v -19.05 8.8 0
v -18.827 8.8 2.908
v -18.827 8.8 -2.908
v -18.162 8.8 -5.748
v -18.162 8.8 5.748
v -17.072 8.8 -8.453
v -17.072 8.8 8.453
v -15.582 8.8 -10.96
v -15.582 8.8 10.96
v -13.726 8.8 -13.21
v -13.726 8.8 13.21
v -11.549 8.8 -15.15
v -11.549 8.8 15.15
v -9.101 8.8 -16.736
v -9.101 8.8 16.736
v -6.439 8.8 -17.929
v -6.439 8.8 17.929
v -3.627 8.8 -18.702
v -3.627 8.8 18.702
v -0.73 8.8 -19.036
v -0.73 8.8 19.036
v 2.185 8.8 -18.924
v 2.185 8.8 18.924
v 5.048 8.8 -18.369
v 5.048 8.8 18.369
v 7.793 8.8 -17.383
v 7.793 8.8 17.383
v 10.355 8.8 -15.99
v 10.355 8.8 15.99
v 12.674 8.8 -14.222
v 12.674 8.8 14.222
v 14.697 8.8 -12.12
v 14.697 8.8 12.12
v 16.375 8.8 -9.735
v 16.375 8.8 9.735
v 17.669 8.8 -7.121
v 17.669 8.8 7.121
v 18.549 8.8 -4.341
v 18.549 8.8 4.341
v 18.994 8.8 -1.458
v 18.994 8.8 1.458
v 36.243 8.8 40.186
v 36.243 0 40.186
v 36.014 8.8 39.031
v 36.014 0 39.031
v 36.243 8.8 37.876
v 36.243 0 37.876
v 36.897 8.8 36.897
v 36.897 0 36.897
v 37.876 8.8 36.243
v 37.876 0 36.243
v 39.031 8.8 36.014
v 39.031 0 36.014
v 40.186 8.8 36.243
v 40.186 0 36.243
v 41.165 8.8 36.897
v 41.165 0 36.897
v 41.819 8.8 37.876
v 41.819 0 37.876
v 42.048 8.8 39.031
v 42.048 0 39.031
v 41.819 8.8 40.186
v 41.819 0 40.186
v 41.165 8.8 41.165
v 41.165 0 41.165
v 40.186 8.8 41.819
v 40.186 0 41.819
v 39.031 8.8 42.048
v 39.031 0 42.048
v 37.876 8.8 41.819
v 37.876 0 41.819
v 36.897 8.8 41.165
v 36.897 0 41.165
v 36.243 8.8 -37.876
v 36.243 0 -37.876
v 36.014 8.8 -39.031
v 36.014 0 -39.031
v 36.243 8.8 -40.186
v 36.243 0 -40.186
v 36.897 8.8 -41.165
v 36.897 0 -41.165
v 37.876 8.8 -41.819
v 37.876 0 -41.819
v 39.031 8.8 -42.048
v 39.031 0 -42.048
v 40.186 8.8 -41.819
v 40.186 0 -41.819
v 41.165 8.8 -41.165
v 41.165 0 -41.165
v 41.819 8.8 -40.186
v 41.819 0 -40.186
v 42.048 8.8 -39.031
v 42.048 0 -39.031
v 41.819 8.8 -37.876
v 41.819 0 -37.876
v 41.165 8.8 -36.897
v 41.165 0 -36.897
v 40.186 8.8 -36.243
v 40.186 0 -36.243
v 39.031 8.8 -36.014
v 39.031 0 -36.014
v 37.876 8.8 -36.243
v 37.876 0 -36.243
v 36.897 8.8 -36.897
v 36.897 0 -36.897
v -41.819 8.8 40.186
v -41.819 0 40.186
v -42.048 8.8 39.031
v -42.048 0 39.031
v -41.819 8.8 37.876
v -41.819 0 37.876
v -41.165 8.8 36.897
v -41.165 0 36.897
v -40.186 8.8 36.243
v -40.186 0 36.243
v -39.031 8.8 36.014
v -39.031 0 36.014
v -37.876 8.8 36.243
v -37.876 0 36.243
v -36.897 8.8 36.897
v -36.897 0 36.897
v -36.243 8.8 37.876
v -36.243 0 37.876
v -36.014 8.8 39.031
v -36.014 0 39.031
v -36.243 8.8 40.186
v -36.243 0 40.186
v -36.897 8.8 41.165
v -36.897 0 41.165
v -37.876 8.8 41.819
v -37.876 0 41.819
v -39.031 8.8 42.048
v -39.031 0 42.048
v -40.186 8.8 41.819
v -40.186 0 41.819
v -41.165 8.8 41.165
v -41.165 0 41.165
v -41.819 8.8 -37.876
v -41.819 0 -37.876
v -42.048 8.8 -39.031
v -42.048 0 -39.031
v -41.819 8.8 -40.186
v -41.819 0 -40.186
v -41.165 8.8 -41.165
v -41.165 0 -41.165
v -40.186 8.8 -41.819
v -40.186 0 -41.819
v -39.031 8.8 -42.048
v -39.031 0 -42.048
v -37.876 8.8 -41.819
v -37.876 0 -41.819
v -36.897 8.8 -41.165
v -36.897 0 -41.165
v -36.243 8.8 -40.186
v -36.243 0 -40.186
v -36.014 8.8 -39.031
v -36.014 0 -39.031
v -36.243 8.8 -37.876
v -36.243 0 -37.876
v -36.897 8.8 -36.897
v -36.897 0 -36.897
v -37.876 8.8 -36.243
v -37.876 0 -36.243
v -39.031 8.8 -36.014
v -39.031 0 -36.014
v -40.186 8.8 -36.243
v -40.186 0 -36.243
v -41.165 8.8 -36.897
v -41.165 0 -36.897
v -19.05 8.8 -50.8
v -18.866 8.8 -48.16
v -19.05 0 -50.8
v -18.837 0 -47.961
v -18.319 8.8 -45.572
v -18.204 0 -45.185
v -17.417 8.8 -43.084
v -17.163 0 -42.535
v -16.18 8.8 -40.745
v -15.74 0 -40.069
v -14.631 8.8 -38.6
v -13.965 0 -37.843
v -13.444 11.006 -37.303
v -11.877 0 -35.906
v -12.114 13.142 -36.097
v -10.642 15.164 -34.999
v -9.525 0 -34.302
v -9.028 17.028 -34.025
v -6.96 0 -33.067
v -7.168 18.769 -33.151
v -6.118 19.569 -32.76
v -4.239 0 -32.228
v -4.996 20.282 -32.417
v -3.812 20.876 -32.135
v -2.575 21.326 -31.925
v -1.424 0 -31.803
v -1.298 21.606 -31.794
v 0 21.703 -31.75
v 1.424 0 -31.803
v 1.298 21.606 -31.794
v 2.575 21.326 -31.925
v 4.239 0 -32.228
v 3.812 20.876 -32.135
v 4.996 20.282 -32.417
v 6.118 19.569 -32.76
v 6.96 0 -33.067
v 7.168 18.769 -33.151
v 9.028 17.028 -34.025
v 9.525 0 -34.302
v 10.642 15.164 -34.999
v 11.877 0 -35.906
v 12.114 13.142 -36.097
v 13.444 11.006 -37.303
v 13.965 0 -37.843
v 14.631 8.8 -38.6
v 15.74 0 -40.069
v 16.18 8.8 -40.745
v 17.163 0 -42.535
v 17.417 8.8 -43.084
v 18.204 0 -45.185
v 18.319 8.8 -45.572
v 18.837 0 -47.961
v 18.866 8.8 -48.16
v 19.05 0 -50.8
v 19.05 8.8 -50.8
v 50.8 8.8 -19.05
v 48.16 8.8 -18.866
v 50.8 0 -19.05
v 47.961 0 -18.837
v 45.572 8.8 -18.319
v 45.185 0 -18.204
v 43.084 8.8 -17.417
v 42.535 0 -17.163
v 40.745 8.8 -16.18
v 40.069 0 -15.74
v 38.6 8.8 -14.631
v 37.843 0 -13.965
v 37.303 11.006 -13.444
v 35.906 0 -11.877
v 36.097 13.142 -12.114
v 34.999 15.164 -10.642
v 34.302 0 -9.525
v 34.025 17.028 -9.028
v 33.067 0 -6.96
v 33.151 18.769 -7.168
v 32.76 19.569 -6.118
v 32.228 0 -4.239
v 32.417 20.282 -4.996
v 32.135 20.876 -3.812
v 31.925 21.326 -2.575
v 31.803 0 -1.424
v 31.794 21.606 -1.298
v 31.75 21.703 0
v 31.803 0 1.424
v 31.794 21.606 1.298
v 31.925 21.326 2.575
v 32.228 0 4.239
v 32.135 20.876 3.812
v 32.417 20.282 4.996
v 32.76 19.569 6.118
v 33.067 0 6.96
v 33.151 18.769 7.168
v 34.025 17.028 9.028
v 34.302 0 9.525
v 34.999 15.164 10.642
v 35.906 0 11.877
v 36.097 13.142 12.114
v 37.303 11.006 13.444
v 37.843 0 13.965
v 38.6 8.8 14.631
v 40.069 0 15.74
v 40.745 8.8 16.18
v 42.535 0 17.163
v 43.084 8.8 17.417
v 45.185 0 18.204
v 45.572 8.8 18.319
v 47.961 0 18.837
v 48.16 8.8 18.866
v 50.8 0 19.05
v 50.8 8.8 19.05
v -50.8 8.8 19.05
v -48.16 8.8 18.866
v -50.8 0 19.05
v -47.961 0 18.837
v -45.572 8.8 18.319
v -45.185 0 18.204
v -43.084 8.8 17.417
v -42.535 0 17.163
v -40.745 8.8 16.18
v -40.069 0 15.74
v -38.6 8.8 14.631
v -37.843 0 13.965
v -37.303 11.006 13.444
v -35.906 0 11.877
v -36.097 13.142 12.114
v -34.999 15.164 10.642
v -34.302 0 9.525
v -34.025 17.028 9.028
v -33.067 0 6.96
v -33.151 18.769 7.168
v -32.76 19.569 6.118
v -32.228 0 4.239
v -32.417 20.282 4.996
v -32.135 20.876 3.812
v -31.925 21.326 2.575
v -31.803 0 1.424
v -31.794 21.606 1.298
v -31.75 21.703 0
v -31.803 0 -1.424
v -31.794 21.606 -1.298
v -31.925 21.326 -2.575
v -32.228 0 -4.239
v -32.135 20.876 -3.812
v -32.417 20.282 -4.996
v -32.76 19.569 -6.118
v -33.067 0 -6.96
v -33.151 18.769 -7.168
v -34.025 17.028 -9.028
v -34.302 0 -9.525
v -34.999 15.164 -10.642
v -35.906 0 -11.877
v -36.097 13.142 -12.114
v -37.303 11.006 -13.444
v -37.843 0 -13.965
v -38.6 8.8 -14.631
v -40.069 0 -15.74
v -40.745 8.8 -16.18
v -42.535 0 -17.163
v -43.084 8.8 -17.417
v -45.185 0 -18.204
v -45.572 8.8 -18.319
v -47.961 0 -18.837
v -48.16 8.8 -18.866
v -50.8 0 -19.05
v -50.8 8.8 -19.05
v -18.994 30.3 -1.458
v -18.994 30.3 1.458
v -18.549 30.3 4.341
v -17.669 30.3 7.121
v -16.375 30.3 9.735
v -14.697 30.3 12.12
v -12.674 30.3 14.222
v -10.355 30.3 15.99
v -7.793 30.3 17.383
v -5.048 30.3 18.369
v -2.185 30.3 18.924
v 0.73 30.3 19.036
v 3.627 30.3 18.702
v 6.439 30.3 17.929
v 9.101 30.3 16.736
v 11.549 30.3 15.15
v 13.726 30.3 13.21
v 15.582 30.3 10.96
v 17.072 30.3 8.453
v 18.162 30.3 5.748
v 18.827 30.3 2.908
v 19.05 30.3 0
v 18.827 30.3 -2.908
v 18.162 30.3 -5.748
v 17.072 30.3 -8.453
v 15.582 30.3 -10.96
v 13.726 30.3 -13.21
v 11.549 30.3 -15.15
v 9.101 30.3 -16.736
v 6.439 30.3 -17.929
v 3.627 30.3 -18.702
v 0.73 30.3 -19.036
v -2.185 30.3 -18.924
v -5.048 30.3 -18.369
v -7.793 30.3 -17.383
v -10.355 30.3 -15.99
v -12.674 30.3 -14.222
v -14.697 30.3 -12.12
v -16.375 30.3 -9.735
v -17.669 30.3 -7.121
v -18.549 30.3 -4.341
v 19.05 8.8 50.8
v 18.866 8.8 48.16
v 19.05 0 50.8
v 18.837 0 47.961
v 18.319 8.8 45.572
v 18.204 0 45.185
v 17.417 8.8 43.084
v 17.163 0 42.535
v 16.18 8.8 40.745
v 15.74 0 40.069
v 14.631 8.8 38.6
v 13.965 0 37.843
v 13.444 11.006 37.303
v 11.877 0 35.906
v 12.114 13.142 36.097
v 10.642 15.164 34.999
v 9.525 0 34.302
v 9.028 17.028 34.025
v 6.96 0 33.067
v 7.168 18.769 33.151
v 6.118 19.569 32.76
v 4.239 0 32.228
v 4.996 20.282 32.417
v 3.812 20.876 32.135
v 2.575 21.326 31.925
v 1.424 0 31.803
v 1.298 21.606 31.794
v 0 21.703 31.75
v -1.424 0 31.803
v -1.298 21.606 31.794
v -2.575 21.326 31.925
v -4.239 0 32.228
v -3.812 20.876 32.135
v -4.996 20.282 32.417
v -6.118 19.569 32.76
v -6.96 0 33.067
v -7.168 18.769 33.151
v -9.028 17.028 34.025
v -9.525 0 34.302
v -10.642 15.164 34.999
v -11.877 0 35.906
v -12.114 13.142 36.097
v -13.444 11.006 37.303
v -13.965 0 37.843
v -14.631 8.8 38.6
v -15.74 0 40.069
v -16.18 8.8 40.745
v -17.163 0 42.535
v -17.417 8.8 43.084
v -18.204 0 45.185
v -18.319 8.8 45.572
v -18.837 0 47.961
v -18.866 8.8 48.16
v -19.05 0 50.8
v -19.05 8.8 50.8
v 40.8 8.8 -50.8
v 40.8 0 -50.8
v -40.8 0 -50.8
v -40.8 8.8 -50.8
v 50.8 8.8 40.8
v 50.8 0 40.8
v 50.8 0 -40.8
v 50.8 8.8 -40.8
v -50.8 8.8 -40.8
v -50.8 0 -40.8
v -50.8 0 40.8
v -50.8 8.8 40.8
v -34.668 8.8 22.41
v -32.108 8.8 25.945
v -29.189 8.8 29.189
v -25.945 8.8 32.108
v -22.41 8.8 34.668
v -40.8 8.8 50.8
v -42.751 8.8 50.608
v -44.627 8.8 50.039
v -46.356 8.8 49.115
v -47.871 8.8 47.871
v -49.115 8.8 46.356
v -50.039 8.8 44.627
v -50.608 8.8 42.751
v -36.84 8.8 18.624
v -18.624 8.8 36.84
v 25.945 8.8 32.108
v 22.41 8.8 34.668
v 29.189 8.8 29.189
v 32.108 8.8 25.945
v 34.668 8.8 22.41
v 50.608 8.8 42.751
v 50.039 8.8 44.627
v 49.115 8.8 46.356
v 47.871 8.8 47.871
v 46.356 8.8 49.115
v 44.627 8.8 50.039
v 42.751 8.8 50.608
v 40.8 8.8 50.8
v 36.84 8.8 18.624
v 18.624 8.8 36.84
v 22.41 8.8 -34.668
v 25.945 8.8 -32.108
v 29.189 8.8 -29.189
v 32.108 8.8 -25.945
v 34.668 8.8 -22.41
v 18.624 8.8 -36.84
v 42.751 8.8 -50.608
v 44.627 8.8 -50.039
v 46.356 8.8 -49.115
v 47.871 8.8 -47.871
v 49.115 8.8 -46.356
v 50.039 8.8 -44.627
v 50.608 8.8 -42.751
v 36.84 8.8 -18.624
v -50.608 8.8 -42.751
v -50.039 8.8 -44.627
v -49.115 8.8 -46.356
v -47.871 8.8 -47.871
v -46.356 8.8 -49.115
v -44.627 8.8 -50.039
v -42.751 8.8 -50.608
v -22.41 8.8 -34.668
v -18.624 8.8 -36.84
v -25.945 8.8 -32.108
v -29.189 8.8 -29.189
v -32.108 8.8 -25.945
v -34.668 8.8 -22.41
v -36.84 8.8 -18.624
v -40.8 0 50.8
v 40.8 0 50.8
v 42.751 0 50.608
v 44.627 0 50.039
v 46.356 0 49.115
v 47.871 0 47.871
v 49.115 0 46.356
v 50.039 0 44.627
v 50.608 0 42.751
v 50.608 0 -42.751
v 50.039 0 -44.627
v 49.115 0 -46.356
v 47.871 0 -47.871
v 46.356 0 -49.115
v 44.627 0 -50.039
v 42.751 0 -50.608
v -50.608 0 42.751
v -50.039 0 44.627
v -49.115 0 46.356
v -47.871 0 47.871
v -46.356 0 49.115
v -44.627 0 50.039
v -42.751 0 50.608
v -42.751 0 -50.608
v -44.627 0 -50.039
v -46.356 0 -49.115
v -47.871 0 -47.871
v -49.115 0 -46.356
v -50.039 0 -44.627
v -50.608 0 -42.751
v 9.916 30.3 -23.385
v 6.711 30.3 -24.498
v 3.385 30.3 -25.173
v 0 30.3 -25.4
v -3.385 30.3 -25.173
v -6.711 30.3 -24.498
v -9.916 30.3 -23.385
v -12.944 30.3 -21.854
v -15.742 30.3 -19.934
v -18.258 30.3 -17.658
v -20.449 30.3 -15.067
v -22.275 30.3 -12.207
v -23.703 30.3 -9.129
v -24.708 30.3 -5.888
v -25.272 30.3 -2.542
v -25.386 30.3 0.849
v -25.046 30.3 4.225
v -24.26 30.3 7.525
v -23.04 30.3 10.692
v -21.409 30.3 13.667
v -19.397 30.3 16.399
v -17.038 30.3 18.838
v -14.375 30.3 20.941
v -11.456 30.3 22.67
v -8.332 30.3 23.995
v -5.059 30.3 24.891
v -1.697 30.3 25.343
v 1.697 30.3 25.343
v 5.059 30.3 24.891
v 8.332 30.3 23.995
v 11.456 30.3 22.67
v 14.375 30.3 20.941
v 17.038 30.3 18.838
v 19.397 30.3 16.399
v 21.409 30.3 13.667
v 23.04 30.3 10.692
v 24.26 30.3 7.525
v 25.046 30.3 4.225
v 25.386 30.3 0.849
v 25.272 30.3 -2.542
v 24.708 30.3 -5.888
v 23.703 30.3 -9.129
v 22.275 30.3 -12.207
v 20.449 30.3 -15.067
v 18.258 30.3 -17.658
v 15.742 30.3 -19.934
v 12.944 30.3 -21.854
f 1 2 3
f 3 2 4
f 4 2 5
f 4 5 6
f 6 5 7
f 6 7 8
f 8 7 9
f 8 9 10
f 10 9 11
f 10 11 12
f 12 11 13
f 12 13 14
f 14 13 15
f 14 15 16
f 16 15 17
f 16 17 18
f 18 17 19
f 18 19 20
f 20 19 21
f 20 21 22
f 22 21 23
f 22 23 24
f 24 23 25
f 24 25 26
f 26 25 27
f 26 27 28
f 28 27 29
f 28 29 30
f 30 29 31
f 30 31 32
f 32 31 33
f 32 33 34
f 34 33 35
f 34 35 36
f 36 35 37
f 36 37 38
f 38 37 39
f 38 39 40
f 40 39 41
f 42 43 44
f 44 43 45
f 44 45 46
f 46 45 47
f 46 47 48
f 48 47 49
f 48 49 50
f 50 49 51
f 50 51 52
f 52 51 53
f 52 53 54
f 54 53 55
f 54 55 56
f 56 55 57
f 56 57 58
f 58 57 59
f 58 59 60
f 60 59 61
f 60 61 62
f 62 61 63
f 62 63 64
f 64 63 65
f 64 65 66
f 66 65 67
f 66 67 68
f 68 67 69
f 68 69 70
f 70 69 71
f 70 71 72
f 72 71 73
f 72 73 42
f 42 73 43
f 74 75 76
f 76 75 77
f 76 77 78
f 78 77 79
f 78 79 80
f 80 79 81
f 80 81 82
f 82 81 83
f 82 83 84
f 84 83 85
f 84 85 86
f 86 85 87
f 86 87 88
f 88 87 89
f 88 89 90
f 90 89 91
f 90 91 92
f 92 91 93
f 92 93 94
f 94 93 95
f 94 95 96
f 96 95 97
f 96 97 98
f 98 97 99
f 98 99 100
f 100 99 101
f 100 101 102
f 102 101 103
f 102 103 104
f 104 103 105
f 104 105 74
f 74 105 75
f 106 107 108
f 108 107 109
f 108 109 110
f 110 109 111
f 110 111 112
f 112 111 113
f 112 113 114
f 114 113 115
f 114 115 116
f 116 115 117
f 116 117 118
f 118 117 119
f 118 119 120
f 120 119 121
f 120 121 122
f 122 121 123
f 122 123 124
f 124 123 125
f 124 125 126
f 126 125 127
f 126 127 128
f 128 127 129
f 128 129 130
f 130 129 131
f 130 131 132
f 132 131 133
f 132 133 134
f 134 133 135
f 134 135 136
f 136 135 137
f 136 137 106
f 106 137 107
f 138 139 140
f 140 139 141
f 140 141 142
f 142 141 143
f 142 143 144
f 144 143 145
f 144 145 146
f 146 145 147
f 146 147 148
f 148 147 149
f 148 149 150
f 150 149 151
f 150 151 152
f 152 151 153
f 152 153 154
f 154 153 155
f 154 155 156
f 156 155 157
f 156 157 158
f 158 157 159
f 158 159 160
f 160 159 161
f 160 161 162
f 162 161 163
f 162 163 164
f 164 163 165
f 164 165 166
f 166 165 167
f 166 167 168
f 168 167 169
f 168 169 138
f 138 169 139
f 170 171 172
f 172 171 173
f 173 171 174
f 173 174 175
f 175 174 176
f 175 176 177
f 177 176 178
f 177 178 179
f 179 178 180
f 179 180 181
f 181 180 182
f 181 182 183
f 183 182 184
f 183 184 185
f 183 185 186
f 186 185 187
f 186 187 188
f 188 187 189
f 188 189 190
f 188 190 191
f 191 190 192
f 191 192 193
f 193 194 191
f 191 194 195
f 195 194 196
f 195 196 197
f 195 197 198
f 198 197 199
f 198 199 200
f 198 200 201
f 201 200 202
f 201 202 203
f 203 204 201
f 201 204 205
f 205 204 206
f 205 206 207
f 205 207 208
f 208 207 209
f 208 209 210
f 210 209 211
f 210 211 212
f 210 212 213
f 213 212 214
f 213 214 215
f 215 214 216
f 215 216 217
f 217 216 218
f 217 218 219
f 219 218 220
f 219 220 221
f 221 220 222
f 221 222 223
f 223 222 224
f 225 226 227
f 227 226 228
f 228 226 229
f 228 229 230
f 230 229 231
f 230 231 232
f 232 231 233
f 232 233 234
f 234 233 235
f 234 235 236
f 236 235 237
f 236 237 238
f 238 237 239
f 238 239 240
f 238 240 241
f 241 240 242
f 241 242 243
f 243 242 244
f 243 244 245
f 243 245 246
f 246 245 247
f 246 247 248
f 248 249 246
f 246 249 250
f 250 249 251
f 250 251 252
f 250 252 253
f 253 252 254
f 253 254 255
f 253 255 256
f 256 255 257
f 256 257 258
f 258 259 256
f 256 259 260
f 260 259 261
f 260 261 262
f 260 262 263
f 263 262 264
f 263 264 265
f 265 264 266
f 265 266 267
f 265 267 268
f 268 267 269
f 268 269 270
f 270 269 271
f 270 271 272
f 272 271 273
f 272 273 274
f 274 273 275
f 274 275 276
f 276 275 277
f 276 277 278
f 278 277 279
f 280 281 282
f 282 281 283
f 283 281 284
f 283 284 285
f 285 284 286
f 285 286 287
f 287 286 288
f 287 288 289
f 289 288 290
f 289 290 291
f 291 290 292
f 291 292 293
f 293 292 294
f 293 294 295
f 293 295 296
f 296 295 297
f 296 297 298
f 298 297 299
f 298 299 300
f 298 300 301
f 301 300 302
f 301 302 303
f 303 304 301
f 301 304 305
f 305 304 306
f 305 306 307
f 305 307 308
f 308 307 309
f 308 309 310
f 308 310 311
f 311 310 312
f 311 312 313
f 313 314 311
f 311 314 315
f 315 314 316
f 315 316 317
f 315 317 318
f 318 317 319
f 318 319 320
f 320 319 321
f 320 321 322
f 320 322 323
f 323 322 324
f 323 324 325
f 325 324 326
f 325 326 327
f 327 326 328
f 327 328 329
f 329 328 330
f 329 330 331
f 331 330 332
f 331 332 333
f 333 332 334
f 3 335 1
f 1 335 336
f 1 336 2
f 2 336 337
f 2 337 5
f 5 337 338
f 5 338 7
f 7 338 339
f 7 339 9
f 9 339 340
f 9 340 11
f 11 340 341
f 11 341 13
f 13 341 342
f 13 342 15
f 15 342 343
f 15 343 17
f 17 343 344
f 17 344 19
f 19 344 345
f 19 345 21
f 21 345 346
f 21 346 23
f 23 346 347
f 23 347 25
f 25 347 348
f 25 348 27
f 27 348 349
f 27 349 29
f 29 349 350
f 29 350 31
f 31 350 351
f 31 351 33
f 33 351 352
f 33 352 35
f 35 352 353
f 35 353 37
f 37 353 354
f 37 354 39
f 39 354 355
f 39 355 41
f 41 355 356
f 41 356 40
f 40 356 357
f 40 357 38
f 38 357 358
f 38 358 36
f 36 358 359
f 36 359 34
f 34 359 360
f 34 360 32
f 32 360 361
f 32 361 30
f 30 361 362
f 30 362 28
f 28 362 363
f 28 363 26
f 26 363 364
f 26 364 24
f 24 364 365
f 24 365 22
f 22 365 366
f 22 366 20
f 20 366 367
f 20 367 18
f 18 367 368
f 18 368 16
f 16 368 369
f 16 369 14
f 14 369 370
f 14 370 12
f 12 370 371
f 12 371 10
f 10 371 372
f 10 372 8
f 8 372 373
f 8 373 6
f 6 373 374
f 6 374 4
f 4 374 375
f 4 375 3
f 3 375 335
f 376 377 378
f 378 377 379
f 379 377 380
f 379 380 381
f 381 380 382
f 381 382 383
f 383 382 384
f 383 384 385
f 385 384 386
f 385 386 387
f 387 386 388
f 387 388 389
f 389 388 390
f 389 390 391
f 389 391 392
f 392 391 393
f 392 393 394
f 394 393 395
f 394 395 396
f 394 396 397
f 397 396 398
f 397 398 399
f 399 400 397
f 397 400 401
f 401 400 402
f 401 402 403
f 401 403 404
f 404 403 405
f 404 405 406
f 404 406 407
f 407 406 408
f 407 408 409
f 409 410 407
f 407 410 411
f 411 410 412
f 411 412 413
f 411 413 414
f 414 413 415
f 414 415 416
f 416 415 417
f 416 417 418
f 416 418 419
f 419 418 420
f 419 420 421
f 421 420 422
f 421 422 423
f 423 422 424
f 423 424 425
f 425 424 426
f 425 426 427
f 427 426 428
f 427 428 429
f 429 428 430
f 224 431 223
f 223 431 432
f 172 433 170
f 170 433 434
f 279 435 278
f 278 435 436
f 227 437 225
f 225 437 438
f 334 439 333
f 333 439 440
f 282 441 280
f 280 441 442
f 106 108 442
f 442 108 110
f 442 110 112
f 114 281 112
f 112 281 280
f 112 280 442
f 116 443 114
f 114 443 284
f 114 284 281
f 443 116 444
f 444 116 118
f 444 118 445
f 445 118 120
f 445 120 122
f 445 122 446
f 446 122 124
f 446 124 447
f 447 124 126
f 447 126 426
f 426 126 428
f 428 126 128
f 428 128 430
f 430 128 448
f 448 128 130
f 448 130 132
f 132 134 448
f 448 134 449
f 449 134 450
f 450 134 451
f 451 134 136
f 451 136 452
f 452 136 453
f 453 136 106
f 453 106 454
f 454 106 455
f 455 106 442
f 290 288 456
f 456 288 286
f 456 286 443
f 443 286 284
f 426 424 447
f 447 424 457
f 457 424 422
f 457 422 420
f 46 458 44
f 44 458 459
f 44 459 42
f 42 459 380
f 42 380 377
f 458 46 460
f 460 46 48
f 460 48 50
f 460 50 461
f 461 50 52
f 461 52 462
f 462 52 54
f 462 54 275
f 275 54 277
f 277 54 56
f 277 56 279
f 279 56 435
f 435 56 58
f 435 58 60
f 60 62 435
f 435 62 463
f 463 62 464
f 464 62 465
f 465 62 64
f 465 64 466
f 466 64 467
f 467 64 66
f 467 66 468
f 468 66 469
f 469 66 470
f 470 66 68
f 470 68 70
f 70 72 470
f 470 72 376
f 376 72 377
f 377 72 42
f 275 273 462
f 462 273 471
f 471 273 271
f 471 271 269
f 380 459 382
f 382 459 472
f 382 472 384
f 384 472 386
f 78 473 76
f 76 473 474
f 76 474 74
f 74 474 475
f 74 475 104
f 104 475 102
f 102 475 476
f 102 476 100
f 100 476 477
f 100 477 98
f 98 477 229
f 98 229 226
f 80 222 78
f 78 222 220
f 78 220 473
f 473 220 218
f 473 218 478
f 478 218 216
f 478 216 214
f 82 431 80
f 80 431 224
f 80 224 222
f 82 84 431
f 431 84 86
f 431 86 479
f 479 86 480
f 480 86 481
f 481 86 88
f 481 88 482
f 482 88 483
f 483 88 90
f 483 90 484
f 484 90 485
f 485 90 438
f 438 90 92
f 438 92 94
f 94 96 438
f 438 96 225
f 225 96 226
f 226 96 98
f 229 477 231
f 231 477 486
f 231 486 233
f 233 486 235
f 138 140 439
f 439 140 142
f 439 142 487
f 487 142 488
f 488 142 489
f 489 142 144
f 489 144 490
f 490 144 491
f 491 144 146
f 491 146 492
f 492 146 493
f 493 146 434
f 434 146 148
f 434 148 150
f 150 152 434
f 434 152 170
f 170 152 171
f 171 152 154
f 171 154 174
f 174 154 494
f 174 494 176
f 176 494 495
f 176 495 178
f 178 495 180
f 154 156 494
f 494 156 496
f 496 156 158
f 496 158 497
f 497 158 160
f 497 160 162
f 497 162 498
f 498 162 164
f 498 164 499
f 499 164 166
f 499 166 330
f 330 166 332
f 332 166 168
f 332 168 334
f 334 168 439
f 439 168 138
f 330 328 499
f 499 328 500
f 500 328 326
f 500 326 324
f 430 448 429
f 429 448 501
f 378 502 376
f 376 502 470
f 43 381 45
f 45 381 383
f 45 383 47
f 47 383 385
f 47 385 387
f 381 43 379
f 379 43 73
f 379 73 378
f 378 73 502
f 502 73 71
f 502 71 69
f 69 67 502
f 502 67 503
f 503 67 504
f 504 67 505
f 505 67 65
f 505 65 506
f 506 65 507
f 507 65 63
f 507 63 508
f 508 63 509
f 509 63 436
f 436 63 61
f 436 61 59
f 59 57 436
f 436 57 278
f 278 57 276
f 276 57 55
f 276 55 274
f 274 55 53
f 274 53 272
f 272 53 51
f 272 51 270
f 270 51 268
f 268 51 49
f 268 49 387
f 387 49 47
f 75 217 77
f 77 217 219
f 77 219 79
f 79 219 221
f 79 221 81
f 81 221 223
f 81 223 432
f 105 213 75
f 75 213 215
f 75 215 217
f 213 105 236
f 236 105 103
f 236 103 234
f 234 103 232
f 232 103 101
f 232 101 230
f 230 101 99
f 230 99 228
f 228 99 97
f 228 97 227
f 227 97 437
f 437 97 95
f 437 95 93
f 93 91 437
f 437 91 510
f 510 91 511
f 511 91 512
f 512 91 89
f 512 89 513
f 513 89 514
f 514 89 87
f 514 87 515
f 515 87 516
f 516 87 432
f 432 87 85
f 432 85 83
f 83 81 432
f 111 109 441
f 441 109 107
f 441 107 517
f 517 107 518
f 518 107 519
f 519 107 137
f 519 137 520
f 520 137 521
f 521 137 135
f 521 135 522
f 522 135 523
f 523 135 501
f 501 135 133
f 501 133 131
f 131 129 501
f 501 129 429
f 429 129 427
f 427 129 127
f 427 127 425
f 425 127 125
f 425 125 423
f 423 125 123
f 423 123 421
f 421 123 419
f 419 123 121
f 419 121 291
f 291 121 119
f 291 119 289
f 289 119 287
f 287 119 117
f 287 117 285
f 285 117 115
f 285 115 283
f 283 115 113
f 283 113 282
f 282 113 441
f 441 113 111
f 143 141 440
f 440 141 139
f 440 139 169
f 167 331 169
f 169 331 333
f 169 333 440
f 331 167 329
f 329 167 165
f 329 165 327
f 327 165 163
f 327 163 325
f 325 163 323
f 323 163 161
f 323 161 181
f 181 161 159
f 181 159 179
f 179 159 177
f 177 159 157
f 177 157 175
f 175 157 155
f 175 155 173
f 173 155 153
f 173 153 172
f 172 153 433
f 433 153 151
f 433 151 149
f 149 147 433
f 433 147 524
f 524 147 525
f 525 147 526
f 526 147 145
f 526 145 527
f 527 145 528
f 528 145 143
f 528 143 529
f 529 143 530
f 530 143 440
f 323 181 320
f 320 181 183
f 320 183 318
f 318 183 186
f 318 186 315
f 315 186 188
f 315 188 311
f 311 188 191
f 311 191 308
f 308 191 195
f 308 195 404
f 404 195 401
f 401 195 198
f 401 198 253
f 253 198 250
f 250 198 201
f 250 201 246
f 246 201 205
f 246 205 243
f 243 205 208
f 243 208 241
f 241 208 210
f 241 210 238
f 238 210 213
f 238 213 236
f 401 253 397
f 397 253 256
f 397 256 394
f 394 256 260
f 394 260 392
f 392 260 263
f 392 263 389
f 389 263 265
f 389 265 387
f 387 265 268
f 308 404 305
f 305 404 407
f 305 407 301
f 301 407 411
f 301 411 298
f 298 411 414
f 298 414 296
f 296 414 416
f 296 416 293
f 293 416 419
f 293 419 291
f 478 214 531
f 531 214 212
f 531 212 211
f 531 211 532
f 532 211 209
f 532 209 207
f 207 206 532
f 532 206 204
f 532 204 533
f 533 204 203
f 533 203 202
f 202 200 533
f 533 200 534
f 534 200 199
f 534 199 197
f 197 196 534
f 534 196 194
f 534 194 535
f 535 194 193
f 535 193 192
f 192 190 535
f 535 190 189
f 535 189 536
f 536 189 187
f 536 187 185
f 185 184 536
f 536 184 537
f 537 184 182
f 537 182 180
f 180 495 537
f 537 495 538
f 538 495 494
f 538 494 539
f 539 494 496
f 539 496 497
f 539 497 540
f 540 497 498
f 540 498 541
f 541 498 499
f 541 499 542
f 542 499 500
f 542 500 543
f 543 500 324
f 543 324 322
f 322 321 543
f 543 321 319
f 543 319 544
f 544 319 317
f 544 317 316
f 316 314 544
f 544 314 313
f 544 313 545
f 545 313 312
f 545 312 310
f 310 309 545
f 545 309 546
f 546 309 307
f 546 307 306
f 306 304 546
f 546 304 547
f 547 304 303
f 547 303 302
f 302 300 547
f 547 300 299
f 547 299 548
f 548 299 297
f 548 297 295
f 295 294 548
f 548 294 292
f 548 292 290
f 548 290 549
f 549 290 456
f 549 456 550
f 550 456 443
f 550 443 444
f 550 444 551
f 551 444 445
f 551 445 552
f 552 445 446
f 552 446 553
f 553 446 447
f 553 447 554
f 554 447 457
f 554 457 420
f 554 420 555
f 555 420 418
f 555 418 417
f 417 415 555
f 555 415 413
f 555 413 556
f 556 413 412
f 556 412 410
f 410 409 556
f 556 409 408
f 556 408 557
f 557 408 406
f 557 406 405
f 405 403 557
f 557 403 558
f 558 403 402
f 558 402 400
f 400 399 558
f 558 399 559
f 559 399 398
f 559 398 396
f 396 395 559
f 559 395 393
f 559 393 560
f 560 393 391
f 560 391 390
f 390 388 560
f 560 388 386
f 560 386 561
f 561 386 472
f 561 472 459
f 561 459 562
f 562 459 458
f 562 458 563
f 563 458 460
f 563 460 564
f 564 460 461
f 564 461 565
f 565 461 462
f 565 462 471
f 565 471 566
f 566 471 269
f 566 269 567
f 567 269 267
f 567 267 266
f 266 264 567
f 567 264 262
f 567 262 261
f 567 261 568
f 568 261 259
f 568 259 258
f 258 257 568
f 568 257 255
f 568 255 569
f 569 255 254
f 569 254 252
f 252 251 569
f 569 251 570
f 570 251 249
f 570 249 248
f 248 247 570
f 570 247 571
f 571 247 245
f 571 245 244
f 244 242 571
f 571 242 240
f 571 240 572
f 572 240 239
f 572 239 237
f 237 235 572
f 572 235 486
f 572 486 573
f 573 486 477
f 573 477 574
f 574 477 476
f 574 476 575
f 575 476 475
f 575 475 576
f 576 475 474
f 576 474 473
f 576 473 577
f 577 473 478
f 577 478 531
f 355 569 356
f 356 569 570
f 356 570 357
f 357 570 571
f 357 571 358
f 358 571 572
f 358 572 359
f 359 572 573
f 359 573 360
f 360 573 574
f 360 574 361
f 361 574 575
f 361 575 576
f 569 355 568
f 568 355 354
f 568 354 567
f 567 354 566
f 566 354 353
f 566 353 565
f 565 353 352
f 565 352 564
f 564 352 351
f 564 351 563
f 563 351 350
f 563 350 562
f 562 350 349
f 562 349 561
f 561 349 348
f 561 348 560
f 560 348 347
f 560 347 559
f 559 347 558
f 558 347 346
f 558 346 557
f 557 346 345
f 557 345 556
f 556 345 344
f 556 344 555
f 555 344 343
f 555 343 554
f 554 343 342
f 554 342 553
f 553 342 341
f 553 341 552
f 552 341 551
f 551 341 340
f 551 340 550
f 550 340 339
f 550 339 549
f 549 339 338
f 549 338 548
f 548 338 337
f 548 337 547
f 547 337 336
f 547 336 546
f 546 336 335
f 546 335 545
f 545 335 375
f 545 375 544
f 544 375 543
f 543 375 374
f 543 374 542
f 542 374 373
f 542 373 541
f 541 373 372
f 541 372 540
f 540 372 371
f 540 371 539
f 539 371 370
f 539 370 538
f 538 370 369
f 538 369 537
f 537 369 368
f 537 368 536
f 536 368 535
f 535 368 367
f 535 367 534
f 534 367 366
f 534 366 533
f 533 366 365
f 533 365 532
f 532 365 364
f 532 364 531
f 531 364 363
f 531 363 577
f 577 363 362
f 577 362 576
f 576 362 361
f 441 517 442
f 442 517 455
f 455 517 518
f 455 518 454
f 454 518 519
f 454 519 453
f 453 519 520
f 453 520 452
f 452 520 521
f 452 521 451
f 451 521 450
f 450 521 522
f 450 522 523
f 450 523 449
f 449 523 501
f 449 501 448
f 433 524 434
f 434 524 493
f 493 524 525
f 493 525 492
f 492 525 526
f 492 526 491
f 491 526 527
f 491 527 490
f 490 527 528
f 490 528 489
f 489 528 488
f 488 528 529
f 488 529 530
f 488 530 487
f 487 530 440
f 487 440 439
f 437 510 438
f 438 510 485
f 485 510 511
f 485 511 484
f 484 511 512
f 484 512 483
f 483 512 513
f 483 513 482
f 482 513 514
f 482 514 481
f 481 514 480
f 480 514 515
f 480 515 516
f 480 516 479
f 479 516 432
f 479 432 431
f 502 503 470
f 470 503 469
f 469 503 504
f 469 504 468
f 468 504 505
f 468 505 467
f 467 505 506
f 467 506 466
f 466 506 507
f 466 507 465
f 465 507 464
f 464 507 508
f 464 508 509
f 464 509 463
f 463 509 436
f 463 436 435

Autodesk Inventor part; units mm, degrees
ref_plane "YZ Plane" through (0, 0, 0) normal (1, 0, 0) x (0, 1, 0)
ref_plane "XZ Plane" through (0, 0, 0) normal (0, 1, 0) x (-1, 0, 0)
ref_plane "XY Plane" through (0, 0, 0) normal (0, 0, 1) x (1, 0, 0)
sketch "Sketch1" plane through (0, 0, 0) normal (0, 1, 0) x (-1, 0, 0)
  line L0 (40.8, 50.8) -> (-40.8, 50.8)
  line L1 (-50.8, 40.8) -> (-50.8, -40.8)
  line L2 (-40.8, -50.8) -> (40.8, -50.8)
  line L3 (50.8, -40.8) -> (50.8, 40.8)
  line L4 (50.8, 50.8) -> (-50.8, -50.8) construction
  line L5 (-50.8, 50.8) -> (50.8, -50.8) construction
  arc A0 (50.8, 40.8) -> (40.8, 50.8) centre (40.8, 40.8) ccw
  arc A1 (-40.8, 50.8) -> (-50.8, 40.8) centre (-40.8, 40.8) ccw
  arc A2 (-50.8, -40.8) -> (-40.8, -50.8) centre (-40.8, -40.8) ccw
  arc A3 (40.8, -50.8) -> (50.8, -40.8) centre (40.8, -40.8) ccw
  point P0 (0, 0)
  dimension "d0" = 101.6
  dimension "d1" = 101.6
  dimension "d2" = 10
extrude "Extrusion1" add sketch "Sketch1" along normal blind 8.8
sketch "Sketch2" plane through (0, 0, 0) normal (1, 0, 0) x (0, 1, 0)
  line L0 (8.8, 40.8) -> (8.8, -40.8) projected
  line L1 (8.8, 0) -> (30.3, 0)
  line L2 (30.3, 0) -> (30.3, -25.4)
  line L3 (30.3, -25.4) -> (8.8, -41.28)
  line L4 (8.8, 0) -> (8.8, -41.28)
  line L5 (-49.004, 0) -> (294.024, 0) projected
  point P0 (0, 0)
  dimension "d5" = 25.4
  dimension "d6" = 21.5
  dimension "d7" = 41.28
revolve "Revolution1" add sketch "Sketch2" angle 360 about axis through (0, -10, 0) along (0, 1, 0)
sketch "Sketch3" plane through (0, 30.3, 0) normal (0, 1, 0) x (1, 0, 0)
  circle A0 centre (0, 0) radius 41.28 projected
  circle A1 centre (0, 0) radius 19.05
  line L0 (40.8, 50.8) -> (-40.8, 50.8) projected
  arc A2 (-19.05, 50.8) -> (19.05, 50.8) centre (0, 50.8) ccw
  line L1 (50.8, -40.8) -> (50.8, 40.8) projected
  arc A3 (50.8, 19.05) -> (50.8, -19.05) centre (50.8, 0) ccw
  line L2 (-40.8, -50.8) -> (40.8, -50.8) projected
  arc A4 (19.05, -50.8) -> (-19.05, -50.8) centre (0, -50.8) ccw
  line L3 (-50.8, 40.8) -> (-50.8, -40.8) projected
  arc A5 (-50.8, -19.05) -> (-50.8, 19.05) centre (-50.8, 0) ccw
  line L4 (-50.8, -19.05) -> (-50.8, 19.05)
  line L5 (-19.05, 50.8) -> (19.05, 50.8)
  line L6 (50.8, 19.05) -> (50.8, -19.05)
  line L7 (19.05, -50.8) -> (-19.05, -50.8)
  line L8 (-39.031, 39.031) -> (39.031, 39.031)
  line L9 (39.031, 39.031) -> (39.031, -39.031)
  line L10 (39.031, -39.031) -> (-39.031, -39.031)
  line L11 (-39.031, -39.031) -> (-39.031, 39.031)
  line L12 (-39.031, 39.031) -> (39.031, -39.031) construction
  line L13 (39.031, 39.031) -> (-39.031, -39.031) construction
  circle A6 centre (-39.031, 39.031) radius 3.0175
  circle A7 centre (39.031, 39.031) radius 3.0175
  circle A8 centre (39.031, -39.031) radius 3.0175
  circle A9 centre (-39.031, -39.031) radius 3.0175
  point P0 (50.8, 19.05)
  dimension "d9" = 38.1
  dimension "d10" = 78.062
  dimension "d11" = 78.062
  dimension "d12" = 6.035
extrude "Extrusion2" cut sketch "Sketch3" against normal through all contours A0 L9 | A0 L9 A3 L1 | L9 A0 A3 | A0 A3 L9 | L9 A3 A0 | A2 A0 L8 | A0 L8 A2 | A4 L10 A0 | A0 L10 A4 | L8 A0 | A0 L8 A2 L0 | A2 L8 A0 | L10 A4 L2 A0 | A0 L10 | A0 L10 A4 | A5 A0 L11 | A0 L11 A5 | A5 L11 A0 | L11 A0 | A0 L11 A5 L3 | A1
extrude "Extrusion3" cut sketch "Sketch3" against normal through all contours A7 L8 L9 | L9 L8 A7 | A8 L10 L9 | L9 L10 A8 | A6 L11 L8 | L8 L11 A6 | A9 L11 L10 | L10 L11 A9
sketch "Sketch4" plane through (0, 0, 0) normal (0, -1, 0) x (1, 0, 0)
  circle A0 centre (0, 0) radius 19.05
  dimension "d19" = 38.1
extrude "Extrusion4" add sketch "Sketch4" against normal up to surface (8.8 mm away)
properties part number "WindTurbine"
